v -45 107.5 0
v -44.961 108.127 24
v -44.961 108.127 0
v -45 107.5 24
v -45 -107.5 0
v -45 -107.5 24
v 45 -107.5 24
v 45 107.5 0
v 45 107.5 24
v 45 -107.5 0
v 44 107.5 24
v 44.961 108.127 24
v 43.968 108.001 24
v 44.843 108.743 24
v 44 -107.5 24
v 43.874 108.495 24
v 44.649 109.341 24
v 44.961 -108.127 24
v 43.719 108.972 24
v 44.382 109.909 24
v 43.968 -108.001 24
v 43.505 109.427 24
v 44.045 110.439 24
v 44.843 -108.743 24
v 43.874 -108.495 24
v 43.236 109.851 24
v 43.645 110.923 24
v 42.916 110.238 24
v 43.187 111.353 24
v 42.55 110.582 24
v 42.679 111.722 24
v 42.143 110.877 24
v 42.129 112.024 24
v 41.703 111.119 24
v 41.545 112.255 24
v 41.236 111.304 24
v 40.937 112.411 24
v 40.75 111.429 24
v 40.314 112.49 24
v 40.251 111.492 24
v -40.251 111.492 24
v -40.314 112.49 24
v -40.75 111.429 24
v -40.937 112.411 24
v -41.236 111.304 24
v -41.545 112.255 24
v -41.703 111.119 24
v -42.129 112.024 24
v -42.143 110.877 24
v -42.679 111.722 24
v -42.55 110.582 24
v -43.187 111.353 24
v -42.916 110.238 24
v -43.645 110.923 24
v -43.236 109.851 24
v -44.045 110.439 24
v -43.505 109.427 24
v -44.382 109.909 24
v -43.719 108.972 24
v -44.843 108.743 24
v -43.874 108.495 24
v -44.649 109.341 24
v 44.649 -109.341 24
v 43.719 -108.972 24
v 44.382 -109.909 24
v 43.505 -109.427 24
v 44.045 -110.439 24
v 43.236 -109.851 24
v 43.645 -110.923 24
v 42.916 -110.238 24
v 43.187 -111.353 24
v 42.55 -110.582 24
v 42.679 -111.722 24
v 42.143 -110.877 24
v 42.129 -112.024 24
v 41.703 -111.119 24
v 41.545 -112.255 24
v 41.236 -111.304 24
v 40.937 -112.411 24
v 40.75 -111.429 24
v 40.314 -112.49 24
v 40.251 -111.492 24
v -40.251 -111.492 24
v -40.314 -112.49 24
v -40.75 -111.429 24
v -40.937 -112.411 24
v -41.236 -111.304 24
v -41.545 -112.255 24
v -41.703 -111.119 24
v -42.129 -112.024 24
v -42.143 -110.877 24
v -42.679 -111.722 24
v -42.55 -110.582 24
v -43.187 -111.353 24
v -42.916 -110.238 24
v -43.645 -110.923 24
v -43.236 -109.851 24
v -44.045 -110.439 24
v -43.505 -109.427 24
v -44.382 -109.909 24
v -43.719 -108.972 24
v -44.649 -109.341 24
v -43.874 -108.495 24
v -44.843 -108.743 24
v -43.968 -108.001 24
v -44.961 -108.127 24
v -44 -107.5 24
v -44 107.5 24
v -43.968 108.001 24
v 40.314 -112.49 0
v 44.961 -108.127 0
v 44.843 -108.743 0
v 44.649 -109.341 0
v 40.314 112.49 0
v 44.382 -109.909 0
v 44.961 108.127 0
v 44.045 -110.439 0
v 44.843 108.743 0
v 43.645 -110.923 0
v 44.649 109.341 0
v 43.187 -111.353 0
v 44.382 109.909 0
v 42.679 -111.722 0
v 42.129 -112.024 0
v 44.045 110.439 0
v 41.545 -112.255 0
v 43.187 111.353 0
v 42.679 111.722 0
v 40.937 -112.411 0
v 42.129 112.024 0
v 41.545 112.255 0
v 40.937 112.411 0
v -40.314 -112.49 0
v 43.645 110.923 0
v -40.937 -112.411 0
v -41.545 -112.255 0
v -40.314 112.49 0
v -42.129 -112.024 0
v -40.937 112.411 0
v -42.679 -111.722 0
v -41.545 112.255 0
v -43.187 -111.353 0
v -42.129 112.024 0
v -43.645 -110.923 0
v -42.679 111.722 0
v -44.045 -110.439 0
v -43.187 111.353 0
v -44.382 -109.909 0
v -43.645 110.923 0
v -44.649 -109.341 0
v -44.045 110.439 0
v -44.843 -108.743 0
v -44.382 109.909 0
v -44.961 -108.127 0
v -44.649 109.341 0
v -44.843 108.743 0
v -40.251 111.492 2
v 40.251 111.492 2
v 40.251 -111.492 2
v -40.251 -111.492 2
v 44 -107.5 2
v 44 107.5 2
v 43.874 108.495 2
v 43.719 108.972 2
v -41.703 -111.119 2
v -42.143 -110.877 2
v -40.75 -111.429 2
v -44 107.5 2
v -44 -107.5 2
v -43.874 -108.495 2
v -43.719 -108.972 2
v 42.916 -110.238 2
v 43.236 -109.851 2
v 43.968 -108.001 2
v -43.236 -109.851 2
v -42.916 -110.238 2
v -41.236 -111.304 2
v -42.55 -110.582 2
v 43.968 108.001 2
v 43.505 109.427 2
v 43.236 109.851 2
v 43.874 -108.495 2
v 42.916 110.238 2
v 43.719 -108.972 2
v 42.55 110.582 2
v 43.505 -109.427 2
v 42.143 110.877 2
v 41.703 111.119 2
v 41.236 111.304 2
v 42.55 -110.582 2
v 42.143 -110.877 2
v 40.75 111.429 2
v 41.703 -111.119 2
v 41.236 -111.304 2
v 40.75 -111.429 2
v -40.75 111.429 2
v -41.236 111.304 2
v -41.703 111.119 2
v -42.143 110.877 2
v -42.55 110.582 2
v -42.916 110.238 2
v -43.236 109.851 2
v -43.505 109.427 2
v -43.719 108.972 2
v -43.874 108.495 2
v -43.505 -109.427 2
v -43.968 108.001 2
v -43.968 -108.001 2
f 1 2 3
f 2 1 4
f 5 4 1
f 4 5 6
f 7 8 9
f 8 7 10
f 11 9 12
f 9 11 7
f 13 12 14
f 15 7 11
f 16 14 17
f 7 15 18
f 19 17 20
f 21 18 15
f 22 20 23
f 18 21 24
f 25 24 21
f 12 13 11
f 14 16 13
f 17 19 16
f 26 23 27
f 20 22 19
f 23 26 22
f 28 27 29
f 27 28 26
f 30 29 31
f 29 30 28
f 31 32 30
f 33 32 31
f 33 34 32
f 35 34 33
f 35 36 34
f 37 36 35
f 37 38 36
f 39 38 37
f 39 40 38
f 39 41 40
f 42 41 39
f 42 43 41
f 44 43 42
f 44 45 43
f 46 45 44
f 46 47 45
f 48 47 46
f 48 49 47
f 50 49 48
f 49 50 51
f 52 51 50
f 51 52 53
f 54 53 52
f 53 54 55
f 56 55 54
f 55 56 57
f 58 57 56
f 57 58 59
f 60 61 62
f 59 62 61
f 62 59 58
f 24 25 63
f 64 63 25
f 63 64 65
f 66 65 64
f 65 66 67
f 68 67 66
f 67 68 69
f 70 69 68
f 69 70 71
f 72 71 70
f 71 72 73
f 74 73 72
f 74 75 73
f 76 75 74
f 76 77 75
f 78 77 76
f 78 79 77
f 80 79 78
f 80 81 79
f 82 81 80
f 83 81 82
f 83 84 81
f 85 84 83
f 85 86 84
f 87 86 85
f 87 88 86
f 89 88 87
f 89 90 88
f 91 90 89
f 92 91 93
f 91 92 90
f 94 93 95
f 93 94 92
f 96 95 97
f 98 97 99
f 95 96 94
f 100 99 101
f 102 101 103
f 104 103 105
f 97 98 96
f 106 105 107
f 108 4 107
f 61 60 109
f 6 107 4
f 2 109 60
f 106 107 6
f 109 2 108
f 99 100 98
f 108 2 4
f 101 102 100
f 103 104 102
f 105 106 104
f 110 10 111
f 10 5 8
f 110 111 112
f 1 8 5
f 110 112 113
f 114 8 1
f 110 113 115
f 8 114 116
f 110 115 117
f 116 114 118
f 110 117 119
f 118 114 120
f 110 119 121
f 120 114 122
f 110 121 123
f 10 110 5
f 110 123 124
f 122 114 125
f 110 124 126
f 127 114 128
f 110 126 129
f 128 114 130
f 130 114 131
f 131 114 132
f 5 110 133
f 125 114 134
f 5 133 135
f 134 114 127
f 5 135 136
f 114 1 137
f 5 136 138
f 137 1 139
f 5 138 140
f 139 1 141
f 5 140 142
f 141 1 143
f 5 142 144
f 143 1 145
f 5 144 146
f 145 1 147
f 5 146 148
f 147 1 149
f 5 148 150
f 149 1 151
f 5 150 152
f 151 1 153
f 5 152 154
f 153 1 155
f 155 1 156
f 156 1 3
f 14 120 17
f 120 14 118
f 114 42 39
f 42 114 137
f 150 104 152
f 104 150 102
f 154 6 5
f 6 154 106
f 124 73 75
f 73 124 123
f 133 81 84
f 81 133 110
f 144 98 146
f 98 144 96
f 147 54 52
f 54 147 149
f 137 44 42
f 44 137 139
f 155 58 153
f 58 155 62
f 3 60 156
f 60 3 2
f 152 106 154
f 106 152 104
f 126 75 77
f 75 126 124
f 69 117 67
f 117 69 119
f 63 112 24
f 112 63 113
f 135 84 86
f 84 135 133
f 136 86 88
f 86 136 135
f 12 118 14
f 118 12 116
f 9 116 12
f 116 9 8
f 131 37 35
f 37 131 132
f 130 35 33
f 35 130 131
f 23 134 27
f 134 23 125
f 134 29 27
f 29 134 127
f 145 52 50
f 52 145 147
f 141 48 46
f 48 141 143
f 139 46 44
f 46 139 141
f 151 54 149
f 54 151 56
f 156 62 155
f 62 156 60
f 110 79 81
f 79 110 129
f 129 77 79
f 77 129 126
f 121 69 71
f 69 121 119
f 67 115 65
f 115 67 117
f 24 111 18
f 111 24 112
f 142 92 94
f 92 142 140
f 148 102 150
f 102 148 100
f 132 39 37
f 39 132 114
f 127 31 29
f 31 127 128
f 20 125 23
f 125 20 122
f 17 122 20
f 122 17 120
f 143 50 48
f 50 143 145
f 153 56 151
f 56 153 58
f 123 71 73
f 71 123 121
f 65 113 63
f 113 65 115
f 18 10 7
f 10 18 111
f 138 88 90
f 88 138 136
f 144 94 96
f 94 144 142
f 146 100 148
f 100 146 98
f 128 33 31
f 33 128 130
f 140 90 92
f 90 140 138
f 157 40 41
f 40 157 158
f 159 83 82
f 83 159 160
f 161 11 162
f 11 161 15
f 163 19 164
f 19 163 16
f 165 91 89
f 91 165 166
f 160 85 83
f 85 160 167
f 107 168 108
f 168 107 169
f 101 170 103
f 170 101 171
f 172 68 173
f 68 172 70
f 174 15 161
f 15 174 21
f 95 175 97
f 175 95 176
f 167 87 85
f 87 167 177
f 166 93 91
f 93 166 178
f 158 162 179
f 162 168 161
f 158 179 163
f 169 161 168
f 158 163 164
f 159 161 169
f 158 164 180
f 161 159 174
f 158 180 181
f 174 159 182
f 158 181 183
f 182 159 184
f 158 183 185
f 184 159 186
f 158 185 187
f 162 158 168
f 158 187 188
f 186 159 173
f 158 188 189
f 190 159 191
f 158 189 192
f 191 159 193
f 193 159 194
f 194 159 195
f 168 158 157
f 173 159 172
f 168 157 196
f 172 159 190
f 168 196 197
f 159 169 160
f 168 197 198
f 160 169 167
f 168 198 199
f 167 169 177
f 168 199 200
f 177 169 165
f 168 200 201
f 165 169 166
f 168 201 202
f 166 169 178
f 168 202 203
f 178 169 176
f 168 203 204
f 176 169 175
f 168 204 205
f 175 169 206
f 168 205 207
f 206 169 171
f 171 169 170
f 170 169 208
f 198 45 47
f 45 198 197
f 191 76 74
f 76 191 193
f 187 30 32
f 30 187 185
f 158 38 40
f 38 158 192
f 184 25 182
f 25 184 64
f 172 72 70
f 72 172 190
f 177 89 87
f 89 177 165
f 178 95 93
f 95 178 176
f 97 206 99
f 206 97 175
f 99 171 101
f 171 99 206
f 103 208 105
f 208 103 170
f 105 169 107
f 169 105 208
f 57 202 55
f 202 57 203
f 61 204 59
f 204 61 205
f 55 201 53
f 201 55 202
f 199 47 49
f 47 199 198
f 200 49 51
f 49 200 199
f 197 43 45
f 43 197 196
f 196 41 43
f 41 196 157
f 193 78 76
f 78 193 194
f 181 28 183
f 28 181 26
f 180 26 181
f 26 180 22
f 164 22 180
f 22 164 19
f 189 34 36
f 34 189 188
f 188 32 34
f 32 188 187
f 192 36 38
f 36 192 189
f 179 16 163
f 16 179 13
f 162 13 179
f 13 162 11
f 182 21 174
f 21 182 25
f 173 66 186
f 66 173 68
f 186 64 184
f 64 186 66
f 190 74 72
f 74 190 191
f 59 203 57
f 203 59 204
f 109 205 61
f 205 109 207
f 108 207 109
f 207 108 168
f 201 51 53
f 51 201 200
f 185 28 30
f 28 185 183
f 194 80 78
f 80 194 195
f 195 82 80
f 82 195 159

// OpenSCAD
$fn = 50;


difference() {
	union() {
		hull() {
			translate(v = [-40.0000000000, 107.5000000000, 0]) {
				cylinder(h = 24, r = 5);
			}
			translate(v = [40.0000000000, 107.5000000000, 0]) {
				cylinder(h = 24, r = 5);
			}
			translate(v = [-40.0000000000, -107.5000000000, 0]) {
				cylinder(h = 24, r = 5);
			}
			translate(v = [40.0000000000, -107.5000000000, 0]) {
				cylinder(h = 24, r = 5);
			}
		}
	}
	union() {
		translate(v = [0, 0, 2]) {
			hull() {
				translate(v = [-40.0000000000, 107.5000000000, 0]) {
					cylinder(h = 22, r = 4);
				}
				translate(v = [40.0000000000, 107.5000000000, 0]) {
					cylinder(h = 22, r = 4);
				}
				translate(v = [-40.0000000000, -107.5000000000, 0]) {
					cylinder(h = 22, r = 4);
				}
				translate(v = [40.0000000000, -107.5000000000, 0]) {
					cylinder(h = 22, r = 4);
				}
			}
		}
	}
}
